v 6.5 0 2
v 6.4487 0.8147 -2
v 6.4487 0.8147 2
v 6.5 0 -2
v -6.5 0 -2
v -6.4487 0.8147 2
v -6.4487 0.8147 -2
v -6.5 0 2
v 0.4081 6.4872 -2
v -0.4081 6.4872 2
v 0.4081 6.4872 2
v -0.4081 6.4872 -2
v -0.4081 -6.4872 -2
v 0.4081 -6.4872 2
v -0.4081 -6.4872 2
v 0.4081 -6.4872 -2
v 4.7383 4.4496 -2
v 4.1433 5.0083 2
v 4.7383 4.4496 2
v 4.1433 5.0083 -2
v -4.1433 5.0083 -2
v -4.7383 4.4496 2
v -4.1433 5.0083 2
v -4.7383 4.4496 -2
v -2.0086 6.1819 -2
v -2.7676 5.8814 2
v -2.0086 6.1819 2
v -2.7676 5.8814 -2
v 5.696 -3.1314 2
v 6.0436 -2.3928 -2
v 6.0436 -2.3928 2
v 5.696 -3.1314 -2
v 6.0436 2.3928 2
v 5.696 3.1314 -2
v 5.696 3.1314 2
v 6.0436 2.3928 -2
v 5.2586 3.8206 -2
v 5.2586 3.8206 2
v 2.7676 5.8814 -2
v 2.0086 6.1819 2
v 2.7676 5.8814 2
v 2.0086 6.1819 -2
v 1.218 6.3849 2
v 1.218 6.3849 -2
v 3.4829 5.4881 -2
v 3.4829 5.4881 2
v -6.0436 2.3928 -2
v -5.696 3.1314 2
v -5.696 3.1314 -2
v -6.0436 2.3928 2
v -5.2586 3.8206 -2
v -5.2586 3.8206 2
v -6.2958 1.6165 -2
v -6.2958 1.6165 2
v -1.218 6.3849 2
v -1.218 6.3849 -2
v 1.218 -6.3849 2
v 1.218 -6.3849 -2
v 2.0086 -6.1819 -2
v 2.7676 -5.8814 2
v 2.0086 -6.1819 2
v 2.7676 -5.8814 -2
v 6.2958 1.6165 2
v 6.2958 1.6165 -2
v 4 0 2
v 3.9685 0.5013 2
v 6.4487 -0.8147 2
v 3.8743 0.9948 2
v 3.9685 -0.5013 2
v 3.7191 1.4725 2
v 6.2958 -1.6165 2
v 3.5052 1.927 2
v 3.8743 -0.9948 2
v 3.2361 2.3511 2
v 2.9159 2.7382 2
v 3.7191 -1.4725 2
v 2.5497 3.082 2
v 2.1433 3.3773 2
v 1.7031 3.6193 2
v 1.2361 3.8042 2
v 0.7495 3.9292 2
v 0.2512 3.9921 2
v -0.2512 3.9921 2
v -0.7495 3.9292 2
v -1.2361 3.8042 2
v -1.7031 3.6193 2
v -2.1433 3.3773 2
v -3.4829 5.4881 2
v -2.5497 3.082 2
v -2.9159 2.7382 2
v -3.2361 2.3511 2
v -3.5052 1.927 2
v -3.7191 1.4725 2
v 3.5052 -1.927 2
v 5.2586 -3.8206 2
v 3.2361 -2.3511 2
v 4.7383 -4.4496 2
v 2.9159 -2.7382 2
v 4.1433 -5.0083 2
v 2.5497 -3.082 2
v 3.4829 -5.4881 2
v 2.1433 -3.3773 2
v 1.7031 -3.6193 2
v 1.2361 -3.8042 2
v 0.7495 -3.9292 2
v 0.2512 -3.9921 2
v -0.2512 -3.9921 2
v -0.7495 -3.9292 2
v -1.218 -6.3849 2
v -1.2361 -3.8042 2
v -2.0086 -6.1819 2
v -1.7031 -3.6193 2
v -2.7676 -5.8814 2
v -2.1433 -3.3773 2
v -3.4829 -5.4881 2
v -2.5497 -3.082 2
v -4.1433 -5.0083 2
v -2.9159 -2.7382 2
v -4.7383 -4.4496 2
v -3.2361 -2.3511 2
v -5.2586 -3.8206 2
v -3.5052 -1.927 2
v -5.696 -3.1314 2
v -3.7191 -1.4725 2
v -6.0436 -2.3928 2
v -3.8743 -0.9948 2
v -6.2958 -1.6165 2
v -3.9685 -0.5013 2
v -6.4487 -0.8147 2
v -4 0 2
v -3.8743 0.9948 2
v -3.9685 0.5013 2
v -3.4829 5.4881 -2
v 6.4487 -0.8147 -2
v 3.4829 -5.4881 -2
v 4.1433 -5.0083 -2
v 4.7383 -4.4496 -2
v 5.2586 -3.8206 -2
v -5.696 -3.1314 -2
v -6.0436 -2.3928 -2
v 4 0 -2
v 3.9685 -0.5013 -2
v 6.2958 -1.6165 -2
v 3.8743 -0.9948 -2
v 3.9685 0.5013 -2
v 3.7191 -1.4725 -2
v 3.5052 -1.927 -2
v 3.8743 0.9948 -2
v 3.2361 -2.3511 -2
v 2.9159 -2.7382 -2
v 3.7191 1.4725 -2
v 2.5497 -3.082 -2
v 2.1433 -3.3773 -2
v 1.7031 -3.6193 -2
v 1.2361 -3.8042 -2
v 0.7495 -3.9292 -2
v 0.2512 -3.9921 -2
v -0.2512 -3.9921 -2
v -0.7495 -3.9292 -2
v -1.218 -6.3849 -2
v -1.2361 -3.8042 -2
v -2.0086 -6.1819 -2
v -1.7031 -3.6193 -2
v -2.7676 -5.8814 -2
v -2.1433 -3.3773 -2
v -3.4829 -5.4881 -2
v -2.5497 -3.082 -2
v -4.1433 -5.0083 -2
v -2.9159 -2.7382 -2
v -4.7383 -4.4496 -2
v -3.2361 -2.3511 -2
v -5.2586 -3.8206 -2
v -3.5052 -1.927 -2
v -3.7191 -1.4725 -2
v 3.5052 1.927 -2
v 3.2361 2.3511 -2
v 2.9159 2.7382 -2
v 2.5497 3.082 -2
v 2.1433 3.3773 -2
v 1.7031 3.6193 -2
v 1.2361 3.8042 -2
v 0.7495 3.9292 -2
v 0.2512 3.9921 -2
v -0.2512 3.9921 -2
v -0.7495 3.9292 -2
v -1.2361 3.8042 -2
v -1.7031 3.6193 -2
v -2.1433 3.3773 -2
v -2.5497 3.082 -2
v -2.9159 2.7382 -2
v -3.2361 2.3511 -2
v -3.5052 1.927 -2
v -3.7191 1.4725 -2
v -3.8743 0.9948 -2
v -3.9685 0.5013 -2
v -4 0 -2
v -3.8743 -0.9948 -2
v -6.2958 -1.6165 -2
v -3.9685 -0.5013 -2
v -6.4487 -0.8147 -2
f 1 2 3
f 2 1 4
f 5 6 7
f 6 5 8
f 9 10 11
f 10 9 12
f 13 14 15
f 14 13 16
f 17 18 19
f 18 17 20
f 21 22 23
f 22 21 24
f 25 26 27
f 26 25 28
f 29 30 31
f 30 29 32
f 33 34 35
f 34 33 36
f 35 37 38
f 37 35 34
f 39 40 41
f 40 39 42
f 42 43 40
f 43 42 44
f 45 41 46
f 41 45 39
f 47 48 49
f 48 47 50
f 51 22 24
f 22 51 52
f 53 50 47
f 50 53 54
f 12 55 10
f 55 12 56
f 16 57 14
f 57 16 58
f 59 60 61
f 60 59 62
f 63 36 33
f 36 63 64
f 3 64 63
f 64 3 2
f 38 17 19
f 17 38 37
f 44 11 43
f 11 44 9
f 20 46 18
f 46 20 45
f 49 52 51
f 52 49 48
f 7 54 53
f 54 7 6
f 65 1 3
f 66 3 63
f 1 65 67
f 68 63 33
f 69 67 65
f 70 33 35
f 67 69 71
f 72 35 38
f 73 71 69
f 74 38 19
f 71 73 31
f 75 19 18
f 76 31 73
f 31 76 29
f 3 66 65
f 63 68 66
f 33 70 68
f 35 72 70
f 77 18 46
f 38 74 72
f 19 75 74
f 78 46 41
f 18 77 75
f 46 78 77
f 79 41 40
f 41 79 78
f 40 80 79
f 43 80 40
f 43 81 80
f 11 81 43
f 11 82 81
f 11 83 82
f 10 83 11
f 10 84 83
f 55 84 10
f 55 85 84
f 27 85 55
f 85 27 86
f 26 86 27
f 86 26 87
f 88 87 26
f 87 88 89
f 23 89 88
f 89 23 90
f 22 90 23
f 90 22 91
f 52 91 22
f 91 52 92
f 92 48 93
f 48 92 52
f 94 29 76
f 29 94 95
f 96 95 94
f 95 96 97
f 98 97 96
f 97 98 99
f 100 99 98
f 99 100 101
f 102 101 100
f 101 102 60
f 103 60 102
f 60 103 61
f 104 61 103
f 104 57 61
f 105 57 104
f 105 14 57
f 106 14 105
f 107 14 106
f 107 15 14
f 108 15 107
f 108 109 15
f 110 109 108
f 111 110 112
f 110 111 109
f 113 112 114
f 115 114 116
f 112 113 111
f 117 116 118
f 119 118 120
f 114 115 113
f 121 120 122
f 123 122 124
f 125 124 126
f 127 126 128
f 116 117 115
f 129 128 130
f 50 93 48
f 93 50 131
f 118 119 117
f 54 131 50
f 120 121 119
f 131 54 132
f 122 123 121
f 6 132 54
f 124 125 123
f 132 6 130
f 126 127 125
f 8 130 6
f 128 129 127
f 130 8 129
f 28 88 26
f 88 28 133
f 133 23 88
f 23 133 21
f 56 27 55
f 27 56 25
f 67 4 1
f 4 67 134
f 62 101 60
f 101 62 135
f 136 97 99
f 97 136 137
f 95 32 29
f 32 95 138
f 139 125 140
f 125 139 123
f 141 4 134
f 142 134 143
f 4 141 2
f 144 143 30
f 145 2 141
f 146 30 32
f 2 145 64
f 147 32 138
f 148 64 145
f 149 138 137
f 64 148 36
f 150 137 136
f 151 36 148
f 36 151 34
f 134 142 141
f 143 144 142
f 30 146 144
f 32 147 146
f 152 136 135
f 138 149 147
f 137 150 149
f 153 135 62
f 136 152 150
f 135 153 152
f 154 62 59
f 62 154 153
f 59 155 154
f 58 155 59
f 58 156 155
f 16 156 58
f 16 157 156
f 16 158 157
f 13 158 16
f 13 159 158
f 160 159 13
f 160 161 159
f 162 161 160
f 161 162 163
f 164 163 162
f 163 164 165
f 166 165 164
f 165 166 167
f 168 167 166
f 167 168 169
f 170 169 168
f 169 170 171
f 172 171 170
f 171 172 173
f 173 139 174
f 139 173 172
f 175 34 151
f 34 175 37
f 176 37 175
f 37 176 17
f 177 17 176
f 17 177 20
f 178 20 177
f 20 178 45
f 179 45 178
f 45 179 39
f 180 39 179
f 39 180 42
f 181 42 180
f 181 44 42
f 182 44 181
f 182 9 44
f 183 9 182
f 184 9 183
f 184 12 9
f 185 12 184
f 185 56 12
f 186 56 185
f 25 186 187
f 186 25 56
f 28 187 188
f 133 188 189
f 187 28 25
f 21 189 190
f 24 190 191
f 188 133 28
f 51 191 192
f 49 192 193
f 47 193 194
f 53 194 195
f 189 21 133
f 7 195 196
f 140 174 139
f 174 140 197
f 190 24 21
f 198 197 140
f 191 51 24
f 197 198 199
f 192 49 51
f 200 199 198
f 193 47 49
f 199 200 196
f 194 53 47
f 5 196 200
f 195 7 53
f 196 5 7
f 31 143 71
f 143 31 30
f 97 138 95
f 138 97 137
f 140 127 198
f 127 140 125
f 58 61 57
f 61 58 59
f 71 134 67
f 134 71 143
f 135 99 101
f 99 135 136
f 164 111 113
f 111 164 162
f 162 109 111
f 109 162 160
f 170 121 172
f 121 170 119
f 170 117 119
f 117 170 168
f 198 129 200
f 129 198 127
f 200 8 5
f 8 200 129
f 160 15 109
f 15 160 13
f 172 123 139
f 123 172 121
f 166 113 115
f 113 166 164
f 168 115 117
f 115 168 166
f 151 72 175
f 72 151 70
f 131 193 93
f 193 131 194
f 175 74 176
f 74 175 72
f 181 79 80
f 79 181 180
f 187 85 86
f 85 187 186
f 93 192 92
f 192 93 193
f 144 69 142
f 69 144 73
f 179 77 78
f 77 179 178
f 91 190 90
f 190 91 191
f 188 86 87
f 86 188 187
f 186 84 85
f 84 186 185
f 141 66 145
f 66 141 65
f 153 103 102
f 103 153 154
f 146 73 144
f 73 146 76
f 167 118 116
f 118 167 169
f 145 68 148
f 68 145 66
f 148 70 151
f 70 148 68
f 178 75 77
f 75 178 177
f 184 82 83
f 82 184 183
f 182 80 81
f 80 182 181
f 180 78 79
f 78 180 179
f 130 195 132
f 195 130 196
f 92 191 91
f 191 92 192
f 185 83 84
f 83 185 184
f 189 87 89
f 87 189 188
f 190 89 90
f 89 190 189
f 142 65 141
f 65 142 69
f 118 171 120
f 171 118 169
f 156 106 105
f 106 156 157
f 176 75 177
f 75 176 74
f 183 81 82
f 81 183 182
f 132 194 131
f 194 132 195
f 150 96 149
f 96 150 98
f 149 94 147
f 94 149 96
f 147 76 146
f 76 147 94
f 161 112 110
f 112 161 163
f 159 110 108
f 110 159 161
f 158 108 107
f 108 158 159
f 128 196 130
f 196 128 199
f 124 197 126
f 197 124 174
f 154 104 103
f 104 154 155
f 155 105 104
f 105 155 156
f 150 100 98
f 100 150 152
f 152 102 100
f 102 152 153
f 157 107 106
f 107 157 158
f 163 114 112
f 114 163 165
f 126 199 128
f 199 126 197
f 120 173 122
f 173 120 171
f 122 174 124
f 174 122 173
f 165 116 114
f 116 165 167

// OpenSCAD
$fn = 50;


difference() {
	union() {
		translate(v = [0, 0, -2.0000000000]) {
			cylinder(h = 4, r = 6.5000000000);
		}
	}
	union() {
		translate(v = [0, 0, -100.0000000000]) {
			cylinder(h = 200, r = 4);
		}
	}
}
